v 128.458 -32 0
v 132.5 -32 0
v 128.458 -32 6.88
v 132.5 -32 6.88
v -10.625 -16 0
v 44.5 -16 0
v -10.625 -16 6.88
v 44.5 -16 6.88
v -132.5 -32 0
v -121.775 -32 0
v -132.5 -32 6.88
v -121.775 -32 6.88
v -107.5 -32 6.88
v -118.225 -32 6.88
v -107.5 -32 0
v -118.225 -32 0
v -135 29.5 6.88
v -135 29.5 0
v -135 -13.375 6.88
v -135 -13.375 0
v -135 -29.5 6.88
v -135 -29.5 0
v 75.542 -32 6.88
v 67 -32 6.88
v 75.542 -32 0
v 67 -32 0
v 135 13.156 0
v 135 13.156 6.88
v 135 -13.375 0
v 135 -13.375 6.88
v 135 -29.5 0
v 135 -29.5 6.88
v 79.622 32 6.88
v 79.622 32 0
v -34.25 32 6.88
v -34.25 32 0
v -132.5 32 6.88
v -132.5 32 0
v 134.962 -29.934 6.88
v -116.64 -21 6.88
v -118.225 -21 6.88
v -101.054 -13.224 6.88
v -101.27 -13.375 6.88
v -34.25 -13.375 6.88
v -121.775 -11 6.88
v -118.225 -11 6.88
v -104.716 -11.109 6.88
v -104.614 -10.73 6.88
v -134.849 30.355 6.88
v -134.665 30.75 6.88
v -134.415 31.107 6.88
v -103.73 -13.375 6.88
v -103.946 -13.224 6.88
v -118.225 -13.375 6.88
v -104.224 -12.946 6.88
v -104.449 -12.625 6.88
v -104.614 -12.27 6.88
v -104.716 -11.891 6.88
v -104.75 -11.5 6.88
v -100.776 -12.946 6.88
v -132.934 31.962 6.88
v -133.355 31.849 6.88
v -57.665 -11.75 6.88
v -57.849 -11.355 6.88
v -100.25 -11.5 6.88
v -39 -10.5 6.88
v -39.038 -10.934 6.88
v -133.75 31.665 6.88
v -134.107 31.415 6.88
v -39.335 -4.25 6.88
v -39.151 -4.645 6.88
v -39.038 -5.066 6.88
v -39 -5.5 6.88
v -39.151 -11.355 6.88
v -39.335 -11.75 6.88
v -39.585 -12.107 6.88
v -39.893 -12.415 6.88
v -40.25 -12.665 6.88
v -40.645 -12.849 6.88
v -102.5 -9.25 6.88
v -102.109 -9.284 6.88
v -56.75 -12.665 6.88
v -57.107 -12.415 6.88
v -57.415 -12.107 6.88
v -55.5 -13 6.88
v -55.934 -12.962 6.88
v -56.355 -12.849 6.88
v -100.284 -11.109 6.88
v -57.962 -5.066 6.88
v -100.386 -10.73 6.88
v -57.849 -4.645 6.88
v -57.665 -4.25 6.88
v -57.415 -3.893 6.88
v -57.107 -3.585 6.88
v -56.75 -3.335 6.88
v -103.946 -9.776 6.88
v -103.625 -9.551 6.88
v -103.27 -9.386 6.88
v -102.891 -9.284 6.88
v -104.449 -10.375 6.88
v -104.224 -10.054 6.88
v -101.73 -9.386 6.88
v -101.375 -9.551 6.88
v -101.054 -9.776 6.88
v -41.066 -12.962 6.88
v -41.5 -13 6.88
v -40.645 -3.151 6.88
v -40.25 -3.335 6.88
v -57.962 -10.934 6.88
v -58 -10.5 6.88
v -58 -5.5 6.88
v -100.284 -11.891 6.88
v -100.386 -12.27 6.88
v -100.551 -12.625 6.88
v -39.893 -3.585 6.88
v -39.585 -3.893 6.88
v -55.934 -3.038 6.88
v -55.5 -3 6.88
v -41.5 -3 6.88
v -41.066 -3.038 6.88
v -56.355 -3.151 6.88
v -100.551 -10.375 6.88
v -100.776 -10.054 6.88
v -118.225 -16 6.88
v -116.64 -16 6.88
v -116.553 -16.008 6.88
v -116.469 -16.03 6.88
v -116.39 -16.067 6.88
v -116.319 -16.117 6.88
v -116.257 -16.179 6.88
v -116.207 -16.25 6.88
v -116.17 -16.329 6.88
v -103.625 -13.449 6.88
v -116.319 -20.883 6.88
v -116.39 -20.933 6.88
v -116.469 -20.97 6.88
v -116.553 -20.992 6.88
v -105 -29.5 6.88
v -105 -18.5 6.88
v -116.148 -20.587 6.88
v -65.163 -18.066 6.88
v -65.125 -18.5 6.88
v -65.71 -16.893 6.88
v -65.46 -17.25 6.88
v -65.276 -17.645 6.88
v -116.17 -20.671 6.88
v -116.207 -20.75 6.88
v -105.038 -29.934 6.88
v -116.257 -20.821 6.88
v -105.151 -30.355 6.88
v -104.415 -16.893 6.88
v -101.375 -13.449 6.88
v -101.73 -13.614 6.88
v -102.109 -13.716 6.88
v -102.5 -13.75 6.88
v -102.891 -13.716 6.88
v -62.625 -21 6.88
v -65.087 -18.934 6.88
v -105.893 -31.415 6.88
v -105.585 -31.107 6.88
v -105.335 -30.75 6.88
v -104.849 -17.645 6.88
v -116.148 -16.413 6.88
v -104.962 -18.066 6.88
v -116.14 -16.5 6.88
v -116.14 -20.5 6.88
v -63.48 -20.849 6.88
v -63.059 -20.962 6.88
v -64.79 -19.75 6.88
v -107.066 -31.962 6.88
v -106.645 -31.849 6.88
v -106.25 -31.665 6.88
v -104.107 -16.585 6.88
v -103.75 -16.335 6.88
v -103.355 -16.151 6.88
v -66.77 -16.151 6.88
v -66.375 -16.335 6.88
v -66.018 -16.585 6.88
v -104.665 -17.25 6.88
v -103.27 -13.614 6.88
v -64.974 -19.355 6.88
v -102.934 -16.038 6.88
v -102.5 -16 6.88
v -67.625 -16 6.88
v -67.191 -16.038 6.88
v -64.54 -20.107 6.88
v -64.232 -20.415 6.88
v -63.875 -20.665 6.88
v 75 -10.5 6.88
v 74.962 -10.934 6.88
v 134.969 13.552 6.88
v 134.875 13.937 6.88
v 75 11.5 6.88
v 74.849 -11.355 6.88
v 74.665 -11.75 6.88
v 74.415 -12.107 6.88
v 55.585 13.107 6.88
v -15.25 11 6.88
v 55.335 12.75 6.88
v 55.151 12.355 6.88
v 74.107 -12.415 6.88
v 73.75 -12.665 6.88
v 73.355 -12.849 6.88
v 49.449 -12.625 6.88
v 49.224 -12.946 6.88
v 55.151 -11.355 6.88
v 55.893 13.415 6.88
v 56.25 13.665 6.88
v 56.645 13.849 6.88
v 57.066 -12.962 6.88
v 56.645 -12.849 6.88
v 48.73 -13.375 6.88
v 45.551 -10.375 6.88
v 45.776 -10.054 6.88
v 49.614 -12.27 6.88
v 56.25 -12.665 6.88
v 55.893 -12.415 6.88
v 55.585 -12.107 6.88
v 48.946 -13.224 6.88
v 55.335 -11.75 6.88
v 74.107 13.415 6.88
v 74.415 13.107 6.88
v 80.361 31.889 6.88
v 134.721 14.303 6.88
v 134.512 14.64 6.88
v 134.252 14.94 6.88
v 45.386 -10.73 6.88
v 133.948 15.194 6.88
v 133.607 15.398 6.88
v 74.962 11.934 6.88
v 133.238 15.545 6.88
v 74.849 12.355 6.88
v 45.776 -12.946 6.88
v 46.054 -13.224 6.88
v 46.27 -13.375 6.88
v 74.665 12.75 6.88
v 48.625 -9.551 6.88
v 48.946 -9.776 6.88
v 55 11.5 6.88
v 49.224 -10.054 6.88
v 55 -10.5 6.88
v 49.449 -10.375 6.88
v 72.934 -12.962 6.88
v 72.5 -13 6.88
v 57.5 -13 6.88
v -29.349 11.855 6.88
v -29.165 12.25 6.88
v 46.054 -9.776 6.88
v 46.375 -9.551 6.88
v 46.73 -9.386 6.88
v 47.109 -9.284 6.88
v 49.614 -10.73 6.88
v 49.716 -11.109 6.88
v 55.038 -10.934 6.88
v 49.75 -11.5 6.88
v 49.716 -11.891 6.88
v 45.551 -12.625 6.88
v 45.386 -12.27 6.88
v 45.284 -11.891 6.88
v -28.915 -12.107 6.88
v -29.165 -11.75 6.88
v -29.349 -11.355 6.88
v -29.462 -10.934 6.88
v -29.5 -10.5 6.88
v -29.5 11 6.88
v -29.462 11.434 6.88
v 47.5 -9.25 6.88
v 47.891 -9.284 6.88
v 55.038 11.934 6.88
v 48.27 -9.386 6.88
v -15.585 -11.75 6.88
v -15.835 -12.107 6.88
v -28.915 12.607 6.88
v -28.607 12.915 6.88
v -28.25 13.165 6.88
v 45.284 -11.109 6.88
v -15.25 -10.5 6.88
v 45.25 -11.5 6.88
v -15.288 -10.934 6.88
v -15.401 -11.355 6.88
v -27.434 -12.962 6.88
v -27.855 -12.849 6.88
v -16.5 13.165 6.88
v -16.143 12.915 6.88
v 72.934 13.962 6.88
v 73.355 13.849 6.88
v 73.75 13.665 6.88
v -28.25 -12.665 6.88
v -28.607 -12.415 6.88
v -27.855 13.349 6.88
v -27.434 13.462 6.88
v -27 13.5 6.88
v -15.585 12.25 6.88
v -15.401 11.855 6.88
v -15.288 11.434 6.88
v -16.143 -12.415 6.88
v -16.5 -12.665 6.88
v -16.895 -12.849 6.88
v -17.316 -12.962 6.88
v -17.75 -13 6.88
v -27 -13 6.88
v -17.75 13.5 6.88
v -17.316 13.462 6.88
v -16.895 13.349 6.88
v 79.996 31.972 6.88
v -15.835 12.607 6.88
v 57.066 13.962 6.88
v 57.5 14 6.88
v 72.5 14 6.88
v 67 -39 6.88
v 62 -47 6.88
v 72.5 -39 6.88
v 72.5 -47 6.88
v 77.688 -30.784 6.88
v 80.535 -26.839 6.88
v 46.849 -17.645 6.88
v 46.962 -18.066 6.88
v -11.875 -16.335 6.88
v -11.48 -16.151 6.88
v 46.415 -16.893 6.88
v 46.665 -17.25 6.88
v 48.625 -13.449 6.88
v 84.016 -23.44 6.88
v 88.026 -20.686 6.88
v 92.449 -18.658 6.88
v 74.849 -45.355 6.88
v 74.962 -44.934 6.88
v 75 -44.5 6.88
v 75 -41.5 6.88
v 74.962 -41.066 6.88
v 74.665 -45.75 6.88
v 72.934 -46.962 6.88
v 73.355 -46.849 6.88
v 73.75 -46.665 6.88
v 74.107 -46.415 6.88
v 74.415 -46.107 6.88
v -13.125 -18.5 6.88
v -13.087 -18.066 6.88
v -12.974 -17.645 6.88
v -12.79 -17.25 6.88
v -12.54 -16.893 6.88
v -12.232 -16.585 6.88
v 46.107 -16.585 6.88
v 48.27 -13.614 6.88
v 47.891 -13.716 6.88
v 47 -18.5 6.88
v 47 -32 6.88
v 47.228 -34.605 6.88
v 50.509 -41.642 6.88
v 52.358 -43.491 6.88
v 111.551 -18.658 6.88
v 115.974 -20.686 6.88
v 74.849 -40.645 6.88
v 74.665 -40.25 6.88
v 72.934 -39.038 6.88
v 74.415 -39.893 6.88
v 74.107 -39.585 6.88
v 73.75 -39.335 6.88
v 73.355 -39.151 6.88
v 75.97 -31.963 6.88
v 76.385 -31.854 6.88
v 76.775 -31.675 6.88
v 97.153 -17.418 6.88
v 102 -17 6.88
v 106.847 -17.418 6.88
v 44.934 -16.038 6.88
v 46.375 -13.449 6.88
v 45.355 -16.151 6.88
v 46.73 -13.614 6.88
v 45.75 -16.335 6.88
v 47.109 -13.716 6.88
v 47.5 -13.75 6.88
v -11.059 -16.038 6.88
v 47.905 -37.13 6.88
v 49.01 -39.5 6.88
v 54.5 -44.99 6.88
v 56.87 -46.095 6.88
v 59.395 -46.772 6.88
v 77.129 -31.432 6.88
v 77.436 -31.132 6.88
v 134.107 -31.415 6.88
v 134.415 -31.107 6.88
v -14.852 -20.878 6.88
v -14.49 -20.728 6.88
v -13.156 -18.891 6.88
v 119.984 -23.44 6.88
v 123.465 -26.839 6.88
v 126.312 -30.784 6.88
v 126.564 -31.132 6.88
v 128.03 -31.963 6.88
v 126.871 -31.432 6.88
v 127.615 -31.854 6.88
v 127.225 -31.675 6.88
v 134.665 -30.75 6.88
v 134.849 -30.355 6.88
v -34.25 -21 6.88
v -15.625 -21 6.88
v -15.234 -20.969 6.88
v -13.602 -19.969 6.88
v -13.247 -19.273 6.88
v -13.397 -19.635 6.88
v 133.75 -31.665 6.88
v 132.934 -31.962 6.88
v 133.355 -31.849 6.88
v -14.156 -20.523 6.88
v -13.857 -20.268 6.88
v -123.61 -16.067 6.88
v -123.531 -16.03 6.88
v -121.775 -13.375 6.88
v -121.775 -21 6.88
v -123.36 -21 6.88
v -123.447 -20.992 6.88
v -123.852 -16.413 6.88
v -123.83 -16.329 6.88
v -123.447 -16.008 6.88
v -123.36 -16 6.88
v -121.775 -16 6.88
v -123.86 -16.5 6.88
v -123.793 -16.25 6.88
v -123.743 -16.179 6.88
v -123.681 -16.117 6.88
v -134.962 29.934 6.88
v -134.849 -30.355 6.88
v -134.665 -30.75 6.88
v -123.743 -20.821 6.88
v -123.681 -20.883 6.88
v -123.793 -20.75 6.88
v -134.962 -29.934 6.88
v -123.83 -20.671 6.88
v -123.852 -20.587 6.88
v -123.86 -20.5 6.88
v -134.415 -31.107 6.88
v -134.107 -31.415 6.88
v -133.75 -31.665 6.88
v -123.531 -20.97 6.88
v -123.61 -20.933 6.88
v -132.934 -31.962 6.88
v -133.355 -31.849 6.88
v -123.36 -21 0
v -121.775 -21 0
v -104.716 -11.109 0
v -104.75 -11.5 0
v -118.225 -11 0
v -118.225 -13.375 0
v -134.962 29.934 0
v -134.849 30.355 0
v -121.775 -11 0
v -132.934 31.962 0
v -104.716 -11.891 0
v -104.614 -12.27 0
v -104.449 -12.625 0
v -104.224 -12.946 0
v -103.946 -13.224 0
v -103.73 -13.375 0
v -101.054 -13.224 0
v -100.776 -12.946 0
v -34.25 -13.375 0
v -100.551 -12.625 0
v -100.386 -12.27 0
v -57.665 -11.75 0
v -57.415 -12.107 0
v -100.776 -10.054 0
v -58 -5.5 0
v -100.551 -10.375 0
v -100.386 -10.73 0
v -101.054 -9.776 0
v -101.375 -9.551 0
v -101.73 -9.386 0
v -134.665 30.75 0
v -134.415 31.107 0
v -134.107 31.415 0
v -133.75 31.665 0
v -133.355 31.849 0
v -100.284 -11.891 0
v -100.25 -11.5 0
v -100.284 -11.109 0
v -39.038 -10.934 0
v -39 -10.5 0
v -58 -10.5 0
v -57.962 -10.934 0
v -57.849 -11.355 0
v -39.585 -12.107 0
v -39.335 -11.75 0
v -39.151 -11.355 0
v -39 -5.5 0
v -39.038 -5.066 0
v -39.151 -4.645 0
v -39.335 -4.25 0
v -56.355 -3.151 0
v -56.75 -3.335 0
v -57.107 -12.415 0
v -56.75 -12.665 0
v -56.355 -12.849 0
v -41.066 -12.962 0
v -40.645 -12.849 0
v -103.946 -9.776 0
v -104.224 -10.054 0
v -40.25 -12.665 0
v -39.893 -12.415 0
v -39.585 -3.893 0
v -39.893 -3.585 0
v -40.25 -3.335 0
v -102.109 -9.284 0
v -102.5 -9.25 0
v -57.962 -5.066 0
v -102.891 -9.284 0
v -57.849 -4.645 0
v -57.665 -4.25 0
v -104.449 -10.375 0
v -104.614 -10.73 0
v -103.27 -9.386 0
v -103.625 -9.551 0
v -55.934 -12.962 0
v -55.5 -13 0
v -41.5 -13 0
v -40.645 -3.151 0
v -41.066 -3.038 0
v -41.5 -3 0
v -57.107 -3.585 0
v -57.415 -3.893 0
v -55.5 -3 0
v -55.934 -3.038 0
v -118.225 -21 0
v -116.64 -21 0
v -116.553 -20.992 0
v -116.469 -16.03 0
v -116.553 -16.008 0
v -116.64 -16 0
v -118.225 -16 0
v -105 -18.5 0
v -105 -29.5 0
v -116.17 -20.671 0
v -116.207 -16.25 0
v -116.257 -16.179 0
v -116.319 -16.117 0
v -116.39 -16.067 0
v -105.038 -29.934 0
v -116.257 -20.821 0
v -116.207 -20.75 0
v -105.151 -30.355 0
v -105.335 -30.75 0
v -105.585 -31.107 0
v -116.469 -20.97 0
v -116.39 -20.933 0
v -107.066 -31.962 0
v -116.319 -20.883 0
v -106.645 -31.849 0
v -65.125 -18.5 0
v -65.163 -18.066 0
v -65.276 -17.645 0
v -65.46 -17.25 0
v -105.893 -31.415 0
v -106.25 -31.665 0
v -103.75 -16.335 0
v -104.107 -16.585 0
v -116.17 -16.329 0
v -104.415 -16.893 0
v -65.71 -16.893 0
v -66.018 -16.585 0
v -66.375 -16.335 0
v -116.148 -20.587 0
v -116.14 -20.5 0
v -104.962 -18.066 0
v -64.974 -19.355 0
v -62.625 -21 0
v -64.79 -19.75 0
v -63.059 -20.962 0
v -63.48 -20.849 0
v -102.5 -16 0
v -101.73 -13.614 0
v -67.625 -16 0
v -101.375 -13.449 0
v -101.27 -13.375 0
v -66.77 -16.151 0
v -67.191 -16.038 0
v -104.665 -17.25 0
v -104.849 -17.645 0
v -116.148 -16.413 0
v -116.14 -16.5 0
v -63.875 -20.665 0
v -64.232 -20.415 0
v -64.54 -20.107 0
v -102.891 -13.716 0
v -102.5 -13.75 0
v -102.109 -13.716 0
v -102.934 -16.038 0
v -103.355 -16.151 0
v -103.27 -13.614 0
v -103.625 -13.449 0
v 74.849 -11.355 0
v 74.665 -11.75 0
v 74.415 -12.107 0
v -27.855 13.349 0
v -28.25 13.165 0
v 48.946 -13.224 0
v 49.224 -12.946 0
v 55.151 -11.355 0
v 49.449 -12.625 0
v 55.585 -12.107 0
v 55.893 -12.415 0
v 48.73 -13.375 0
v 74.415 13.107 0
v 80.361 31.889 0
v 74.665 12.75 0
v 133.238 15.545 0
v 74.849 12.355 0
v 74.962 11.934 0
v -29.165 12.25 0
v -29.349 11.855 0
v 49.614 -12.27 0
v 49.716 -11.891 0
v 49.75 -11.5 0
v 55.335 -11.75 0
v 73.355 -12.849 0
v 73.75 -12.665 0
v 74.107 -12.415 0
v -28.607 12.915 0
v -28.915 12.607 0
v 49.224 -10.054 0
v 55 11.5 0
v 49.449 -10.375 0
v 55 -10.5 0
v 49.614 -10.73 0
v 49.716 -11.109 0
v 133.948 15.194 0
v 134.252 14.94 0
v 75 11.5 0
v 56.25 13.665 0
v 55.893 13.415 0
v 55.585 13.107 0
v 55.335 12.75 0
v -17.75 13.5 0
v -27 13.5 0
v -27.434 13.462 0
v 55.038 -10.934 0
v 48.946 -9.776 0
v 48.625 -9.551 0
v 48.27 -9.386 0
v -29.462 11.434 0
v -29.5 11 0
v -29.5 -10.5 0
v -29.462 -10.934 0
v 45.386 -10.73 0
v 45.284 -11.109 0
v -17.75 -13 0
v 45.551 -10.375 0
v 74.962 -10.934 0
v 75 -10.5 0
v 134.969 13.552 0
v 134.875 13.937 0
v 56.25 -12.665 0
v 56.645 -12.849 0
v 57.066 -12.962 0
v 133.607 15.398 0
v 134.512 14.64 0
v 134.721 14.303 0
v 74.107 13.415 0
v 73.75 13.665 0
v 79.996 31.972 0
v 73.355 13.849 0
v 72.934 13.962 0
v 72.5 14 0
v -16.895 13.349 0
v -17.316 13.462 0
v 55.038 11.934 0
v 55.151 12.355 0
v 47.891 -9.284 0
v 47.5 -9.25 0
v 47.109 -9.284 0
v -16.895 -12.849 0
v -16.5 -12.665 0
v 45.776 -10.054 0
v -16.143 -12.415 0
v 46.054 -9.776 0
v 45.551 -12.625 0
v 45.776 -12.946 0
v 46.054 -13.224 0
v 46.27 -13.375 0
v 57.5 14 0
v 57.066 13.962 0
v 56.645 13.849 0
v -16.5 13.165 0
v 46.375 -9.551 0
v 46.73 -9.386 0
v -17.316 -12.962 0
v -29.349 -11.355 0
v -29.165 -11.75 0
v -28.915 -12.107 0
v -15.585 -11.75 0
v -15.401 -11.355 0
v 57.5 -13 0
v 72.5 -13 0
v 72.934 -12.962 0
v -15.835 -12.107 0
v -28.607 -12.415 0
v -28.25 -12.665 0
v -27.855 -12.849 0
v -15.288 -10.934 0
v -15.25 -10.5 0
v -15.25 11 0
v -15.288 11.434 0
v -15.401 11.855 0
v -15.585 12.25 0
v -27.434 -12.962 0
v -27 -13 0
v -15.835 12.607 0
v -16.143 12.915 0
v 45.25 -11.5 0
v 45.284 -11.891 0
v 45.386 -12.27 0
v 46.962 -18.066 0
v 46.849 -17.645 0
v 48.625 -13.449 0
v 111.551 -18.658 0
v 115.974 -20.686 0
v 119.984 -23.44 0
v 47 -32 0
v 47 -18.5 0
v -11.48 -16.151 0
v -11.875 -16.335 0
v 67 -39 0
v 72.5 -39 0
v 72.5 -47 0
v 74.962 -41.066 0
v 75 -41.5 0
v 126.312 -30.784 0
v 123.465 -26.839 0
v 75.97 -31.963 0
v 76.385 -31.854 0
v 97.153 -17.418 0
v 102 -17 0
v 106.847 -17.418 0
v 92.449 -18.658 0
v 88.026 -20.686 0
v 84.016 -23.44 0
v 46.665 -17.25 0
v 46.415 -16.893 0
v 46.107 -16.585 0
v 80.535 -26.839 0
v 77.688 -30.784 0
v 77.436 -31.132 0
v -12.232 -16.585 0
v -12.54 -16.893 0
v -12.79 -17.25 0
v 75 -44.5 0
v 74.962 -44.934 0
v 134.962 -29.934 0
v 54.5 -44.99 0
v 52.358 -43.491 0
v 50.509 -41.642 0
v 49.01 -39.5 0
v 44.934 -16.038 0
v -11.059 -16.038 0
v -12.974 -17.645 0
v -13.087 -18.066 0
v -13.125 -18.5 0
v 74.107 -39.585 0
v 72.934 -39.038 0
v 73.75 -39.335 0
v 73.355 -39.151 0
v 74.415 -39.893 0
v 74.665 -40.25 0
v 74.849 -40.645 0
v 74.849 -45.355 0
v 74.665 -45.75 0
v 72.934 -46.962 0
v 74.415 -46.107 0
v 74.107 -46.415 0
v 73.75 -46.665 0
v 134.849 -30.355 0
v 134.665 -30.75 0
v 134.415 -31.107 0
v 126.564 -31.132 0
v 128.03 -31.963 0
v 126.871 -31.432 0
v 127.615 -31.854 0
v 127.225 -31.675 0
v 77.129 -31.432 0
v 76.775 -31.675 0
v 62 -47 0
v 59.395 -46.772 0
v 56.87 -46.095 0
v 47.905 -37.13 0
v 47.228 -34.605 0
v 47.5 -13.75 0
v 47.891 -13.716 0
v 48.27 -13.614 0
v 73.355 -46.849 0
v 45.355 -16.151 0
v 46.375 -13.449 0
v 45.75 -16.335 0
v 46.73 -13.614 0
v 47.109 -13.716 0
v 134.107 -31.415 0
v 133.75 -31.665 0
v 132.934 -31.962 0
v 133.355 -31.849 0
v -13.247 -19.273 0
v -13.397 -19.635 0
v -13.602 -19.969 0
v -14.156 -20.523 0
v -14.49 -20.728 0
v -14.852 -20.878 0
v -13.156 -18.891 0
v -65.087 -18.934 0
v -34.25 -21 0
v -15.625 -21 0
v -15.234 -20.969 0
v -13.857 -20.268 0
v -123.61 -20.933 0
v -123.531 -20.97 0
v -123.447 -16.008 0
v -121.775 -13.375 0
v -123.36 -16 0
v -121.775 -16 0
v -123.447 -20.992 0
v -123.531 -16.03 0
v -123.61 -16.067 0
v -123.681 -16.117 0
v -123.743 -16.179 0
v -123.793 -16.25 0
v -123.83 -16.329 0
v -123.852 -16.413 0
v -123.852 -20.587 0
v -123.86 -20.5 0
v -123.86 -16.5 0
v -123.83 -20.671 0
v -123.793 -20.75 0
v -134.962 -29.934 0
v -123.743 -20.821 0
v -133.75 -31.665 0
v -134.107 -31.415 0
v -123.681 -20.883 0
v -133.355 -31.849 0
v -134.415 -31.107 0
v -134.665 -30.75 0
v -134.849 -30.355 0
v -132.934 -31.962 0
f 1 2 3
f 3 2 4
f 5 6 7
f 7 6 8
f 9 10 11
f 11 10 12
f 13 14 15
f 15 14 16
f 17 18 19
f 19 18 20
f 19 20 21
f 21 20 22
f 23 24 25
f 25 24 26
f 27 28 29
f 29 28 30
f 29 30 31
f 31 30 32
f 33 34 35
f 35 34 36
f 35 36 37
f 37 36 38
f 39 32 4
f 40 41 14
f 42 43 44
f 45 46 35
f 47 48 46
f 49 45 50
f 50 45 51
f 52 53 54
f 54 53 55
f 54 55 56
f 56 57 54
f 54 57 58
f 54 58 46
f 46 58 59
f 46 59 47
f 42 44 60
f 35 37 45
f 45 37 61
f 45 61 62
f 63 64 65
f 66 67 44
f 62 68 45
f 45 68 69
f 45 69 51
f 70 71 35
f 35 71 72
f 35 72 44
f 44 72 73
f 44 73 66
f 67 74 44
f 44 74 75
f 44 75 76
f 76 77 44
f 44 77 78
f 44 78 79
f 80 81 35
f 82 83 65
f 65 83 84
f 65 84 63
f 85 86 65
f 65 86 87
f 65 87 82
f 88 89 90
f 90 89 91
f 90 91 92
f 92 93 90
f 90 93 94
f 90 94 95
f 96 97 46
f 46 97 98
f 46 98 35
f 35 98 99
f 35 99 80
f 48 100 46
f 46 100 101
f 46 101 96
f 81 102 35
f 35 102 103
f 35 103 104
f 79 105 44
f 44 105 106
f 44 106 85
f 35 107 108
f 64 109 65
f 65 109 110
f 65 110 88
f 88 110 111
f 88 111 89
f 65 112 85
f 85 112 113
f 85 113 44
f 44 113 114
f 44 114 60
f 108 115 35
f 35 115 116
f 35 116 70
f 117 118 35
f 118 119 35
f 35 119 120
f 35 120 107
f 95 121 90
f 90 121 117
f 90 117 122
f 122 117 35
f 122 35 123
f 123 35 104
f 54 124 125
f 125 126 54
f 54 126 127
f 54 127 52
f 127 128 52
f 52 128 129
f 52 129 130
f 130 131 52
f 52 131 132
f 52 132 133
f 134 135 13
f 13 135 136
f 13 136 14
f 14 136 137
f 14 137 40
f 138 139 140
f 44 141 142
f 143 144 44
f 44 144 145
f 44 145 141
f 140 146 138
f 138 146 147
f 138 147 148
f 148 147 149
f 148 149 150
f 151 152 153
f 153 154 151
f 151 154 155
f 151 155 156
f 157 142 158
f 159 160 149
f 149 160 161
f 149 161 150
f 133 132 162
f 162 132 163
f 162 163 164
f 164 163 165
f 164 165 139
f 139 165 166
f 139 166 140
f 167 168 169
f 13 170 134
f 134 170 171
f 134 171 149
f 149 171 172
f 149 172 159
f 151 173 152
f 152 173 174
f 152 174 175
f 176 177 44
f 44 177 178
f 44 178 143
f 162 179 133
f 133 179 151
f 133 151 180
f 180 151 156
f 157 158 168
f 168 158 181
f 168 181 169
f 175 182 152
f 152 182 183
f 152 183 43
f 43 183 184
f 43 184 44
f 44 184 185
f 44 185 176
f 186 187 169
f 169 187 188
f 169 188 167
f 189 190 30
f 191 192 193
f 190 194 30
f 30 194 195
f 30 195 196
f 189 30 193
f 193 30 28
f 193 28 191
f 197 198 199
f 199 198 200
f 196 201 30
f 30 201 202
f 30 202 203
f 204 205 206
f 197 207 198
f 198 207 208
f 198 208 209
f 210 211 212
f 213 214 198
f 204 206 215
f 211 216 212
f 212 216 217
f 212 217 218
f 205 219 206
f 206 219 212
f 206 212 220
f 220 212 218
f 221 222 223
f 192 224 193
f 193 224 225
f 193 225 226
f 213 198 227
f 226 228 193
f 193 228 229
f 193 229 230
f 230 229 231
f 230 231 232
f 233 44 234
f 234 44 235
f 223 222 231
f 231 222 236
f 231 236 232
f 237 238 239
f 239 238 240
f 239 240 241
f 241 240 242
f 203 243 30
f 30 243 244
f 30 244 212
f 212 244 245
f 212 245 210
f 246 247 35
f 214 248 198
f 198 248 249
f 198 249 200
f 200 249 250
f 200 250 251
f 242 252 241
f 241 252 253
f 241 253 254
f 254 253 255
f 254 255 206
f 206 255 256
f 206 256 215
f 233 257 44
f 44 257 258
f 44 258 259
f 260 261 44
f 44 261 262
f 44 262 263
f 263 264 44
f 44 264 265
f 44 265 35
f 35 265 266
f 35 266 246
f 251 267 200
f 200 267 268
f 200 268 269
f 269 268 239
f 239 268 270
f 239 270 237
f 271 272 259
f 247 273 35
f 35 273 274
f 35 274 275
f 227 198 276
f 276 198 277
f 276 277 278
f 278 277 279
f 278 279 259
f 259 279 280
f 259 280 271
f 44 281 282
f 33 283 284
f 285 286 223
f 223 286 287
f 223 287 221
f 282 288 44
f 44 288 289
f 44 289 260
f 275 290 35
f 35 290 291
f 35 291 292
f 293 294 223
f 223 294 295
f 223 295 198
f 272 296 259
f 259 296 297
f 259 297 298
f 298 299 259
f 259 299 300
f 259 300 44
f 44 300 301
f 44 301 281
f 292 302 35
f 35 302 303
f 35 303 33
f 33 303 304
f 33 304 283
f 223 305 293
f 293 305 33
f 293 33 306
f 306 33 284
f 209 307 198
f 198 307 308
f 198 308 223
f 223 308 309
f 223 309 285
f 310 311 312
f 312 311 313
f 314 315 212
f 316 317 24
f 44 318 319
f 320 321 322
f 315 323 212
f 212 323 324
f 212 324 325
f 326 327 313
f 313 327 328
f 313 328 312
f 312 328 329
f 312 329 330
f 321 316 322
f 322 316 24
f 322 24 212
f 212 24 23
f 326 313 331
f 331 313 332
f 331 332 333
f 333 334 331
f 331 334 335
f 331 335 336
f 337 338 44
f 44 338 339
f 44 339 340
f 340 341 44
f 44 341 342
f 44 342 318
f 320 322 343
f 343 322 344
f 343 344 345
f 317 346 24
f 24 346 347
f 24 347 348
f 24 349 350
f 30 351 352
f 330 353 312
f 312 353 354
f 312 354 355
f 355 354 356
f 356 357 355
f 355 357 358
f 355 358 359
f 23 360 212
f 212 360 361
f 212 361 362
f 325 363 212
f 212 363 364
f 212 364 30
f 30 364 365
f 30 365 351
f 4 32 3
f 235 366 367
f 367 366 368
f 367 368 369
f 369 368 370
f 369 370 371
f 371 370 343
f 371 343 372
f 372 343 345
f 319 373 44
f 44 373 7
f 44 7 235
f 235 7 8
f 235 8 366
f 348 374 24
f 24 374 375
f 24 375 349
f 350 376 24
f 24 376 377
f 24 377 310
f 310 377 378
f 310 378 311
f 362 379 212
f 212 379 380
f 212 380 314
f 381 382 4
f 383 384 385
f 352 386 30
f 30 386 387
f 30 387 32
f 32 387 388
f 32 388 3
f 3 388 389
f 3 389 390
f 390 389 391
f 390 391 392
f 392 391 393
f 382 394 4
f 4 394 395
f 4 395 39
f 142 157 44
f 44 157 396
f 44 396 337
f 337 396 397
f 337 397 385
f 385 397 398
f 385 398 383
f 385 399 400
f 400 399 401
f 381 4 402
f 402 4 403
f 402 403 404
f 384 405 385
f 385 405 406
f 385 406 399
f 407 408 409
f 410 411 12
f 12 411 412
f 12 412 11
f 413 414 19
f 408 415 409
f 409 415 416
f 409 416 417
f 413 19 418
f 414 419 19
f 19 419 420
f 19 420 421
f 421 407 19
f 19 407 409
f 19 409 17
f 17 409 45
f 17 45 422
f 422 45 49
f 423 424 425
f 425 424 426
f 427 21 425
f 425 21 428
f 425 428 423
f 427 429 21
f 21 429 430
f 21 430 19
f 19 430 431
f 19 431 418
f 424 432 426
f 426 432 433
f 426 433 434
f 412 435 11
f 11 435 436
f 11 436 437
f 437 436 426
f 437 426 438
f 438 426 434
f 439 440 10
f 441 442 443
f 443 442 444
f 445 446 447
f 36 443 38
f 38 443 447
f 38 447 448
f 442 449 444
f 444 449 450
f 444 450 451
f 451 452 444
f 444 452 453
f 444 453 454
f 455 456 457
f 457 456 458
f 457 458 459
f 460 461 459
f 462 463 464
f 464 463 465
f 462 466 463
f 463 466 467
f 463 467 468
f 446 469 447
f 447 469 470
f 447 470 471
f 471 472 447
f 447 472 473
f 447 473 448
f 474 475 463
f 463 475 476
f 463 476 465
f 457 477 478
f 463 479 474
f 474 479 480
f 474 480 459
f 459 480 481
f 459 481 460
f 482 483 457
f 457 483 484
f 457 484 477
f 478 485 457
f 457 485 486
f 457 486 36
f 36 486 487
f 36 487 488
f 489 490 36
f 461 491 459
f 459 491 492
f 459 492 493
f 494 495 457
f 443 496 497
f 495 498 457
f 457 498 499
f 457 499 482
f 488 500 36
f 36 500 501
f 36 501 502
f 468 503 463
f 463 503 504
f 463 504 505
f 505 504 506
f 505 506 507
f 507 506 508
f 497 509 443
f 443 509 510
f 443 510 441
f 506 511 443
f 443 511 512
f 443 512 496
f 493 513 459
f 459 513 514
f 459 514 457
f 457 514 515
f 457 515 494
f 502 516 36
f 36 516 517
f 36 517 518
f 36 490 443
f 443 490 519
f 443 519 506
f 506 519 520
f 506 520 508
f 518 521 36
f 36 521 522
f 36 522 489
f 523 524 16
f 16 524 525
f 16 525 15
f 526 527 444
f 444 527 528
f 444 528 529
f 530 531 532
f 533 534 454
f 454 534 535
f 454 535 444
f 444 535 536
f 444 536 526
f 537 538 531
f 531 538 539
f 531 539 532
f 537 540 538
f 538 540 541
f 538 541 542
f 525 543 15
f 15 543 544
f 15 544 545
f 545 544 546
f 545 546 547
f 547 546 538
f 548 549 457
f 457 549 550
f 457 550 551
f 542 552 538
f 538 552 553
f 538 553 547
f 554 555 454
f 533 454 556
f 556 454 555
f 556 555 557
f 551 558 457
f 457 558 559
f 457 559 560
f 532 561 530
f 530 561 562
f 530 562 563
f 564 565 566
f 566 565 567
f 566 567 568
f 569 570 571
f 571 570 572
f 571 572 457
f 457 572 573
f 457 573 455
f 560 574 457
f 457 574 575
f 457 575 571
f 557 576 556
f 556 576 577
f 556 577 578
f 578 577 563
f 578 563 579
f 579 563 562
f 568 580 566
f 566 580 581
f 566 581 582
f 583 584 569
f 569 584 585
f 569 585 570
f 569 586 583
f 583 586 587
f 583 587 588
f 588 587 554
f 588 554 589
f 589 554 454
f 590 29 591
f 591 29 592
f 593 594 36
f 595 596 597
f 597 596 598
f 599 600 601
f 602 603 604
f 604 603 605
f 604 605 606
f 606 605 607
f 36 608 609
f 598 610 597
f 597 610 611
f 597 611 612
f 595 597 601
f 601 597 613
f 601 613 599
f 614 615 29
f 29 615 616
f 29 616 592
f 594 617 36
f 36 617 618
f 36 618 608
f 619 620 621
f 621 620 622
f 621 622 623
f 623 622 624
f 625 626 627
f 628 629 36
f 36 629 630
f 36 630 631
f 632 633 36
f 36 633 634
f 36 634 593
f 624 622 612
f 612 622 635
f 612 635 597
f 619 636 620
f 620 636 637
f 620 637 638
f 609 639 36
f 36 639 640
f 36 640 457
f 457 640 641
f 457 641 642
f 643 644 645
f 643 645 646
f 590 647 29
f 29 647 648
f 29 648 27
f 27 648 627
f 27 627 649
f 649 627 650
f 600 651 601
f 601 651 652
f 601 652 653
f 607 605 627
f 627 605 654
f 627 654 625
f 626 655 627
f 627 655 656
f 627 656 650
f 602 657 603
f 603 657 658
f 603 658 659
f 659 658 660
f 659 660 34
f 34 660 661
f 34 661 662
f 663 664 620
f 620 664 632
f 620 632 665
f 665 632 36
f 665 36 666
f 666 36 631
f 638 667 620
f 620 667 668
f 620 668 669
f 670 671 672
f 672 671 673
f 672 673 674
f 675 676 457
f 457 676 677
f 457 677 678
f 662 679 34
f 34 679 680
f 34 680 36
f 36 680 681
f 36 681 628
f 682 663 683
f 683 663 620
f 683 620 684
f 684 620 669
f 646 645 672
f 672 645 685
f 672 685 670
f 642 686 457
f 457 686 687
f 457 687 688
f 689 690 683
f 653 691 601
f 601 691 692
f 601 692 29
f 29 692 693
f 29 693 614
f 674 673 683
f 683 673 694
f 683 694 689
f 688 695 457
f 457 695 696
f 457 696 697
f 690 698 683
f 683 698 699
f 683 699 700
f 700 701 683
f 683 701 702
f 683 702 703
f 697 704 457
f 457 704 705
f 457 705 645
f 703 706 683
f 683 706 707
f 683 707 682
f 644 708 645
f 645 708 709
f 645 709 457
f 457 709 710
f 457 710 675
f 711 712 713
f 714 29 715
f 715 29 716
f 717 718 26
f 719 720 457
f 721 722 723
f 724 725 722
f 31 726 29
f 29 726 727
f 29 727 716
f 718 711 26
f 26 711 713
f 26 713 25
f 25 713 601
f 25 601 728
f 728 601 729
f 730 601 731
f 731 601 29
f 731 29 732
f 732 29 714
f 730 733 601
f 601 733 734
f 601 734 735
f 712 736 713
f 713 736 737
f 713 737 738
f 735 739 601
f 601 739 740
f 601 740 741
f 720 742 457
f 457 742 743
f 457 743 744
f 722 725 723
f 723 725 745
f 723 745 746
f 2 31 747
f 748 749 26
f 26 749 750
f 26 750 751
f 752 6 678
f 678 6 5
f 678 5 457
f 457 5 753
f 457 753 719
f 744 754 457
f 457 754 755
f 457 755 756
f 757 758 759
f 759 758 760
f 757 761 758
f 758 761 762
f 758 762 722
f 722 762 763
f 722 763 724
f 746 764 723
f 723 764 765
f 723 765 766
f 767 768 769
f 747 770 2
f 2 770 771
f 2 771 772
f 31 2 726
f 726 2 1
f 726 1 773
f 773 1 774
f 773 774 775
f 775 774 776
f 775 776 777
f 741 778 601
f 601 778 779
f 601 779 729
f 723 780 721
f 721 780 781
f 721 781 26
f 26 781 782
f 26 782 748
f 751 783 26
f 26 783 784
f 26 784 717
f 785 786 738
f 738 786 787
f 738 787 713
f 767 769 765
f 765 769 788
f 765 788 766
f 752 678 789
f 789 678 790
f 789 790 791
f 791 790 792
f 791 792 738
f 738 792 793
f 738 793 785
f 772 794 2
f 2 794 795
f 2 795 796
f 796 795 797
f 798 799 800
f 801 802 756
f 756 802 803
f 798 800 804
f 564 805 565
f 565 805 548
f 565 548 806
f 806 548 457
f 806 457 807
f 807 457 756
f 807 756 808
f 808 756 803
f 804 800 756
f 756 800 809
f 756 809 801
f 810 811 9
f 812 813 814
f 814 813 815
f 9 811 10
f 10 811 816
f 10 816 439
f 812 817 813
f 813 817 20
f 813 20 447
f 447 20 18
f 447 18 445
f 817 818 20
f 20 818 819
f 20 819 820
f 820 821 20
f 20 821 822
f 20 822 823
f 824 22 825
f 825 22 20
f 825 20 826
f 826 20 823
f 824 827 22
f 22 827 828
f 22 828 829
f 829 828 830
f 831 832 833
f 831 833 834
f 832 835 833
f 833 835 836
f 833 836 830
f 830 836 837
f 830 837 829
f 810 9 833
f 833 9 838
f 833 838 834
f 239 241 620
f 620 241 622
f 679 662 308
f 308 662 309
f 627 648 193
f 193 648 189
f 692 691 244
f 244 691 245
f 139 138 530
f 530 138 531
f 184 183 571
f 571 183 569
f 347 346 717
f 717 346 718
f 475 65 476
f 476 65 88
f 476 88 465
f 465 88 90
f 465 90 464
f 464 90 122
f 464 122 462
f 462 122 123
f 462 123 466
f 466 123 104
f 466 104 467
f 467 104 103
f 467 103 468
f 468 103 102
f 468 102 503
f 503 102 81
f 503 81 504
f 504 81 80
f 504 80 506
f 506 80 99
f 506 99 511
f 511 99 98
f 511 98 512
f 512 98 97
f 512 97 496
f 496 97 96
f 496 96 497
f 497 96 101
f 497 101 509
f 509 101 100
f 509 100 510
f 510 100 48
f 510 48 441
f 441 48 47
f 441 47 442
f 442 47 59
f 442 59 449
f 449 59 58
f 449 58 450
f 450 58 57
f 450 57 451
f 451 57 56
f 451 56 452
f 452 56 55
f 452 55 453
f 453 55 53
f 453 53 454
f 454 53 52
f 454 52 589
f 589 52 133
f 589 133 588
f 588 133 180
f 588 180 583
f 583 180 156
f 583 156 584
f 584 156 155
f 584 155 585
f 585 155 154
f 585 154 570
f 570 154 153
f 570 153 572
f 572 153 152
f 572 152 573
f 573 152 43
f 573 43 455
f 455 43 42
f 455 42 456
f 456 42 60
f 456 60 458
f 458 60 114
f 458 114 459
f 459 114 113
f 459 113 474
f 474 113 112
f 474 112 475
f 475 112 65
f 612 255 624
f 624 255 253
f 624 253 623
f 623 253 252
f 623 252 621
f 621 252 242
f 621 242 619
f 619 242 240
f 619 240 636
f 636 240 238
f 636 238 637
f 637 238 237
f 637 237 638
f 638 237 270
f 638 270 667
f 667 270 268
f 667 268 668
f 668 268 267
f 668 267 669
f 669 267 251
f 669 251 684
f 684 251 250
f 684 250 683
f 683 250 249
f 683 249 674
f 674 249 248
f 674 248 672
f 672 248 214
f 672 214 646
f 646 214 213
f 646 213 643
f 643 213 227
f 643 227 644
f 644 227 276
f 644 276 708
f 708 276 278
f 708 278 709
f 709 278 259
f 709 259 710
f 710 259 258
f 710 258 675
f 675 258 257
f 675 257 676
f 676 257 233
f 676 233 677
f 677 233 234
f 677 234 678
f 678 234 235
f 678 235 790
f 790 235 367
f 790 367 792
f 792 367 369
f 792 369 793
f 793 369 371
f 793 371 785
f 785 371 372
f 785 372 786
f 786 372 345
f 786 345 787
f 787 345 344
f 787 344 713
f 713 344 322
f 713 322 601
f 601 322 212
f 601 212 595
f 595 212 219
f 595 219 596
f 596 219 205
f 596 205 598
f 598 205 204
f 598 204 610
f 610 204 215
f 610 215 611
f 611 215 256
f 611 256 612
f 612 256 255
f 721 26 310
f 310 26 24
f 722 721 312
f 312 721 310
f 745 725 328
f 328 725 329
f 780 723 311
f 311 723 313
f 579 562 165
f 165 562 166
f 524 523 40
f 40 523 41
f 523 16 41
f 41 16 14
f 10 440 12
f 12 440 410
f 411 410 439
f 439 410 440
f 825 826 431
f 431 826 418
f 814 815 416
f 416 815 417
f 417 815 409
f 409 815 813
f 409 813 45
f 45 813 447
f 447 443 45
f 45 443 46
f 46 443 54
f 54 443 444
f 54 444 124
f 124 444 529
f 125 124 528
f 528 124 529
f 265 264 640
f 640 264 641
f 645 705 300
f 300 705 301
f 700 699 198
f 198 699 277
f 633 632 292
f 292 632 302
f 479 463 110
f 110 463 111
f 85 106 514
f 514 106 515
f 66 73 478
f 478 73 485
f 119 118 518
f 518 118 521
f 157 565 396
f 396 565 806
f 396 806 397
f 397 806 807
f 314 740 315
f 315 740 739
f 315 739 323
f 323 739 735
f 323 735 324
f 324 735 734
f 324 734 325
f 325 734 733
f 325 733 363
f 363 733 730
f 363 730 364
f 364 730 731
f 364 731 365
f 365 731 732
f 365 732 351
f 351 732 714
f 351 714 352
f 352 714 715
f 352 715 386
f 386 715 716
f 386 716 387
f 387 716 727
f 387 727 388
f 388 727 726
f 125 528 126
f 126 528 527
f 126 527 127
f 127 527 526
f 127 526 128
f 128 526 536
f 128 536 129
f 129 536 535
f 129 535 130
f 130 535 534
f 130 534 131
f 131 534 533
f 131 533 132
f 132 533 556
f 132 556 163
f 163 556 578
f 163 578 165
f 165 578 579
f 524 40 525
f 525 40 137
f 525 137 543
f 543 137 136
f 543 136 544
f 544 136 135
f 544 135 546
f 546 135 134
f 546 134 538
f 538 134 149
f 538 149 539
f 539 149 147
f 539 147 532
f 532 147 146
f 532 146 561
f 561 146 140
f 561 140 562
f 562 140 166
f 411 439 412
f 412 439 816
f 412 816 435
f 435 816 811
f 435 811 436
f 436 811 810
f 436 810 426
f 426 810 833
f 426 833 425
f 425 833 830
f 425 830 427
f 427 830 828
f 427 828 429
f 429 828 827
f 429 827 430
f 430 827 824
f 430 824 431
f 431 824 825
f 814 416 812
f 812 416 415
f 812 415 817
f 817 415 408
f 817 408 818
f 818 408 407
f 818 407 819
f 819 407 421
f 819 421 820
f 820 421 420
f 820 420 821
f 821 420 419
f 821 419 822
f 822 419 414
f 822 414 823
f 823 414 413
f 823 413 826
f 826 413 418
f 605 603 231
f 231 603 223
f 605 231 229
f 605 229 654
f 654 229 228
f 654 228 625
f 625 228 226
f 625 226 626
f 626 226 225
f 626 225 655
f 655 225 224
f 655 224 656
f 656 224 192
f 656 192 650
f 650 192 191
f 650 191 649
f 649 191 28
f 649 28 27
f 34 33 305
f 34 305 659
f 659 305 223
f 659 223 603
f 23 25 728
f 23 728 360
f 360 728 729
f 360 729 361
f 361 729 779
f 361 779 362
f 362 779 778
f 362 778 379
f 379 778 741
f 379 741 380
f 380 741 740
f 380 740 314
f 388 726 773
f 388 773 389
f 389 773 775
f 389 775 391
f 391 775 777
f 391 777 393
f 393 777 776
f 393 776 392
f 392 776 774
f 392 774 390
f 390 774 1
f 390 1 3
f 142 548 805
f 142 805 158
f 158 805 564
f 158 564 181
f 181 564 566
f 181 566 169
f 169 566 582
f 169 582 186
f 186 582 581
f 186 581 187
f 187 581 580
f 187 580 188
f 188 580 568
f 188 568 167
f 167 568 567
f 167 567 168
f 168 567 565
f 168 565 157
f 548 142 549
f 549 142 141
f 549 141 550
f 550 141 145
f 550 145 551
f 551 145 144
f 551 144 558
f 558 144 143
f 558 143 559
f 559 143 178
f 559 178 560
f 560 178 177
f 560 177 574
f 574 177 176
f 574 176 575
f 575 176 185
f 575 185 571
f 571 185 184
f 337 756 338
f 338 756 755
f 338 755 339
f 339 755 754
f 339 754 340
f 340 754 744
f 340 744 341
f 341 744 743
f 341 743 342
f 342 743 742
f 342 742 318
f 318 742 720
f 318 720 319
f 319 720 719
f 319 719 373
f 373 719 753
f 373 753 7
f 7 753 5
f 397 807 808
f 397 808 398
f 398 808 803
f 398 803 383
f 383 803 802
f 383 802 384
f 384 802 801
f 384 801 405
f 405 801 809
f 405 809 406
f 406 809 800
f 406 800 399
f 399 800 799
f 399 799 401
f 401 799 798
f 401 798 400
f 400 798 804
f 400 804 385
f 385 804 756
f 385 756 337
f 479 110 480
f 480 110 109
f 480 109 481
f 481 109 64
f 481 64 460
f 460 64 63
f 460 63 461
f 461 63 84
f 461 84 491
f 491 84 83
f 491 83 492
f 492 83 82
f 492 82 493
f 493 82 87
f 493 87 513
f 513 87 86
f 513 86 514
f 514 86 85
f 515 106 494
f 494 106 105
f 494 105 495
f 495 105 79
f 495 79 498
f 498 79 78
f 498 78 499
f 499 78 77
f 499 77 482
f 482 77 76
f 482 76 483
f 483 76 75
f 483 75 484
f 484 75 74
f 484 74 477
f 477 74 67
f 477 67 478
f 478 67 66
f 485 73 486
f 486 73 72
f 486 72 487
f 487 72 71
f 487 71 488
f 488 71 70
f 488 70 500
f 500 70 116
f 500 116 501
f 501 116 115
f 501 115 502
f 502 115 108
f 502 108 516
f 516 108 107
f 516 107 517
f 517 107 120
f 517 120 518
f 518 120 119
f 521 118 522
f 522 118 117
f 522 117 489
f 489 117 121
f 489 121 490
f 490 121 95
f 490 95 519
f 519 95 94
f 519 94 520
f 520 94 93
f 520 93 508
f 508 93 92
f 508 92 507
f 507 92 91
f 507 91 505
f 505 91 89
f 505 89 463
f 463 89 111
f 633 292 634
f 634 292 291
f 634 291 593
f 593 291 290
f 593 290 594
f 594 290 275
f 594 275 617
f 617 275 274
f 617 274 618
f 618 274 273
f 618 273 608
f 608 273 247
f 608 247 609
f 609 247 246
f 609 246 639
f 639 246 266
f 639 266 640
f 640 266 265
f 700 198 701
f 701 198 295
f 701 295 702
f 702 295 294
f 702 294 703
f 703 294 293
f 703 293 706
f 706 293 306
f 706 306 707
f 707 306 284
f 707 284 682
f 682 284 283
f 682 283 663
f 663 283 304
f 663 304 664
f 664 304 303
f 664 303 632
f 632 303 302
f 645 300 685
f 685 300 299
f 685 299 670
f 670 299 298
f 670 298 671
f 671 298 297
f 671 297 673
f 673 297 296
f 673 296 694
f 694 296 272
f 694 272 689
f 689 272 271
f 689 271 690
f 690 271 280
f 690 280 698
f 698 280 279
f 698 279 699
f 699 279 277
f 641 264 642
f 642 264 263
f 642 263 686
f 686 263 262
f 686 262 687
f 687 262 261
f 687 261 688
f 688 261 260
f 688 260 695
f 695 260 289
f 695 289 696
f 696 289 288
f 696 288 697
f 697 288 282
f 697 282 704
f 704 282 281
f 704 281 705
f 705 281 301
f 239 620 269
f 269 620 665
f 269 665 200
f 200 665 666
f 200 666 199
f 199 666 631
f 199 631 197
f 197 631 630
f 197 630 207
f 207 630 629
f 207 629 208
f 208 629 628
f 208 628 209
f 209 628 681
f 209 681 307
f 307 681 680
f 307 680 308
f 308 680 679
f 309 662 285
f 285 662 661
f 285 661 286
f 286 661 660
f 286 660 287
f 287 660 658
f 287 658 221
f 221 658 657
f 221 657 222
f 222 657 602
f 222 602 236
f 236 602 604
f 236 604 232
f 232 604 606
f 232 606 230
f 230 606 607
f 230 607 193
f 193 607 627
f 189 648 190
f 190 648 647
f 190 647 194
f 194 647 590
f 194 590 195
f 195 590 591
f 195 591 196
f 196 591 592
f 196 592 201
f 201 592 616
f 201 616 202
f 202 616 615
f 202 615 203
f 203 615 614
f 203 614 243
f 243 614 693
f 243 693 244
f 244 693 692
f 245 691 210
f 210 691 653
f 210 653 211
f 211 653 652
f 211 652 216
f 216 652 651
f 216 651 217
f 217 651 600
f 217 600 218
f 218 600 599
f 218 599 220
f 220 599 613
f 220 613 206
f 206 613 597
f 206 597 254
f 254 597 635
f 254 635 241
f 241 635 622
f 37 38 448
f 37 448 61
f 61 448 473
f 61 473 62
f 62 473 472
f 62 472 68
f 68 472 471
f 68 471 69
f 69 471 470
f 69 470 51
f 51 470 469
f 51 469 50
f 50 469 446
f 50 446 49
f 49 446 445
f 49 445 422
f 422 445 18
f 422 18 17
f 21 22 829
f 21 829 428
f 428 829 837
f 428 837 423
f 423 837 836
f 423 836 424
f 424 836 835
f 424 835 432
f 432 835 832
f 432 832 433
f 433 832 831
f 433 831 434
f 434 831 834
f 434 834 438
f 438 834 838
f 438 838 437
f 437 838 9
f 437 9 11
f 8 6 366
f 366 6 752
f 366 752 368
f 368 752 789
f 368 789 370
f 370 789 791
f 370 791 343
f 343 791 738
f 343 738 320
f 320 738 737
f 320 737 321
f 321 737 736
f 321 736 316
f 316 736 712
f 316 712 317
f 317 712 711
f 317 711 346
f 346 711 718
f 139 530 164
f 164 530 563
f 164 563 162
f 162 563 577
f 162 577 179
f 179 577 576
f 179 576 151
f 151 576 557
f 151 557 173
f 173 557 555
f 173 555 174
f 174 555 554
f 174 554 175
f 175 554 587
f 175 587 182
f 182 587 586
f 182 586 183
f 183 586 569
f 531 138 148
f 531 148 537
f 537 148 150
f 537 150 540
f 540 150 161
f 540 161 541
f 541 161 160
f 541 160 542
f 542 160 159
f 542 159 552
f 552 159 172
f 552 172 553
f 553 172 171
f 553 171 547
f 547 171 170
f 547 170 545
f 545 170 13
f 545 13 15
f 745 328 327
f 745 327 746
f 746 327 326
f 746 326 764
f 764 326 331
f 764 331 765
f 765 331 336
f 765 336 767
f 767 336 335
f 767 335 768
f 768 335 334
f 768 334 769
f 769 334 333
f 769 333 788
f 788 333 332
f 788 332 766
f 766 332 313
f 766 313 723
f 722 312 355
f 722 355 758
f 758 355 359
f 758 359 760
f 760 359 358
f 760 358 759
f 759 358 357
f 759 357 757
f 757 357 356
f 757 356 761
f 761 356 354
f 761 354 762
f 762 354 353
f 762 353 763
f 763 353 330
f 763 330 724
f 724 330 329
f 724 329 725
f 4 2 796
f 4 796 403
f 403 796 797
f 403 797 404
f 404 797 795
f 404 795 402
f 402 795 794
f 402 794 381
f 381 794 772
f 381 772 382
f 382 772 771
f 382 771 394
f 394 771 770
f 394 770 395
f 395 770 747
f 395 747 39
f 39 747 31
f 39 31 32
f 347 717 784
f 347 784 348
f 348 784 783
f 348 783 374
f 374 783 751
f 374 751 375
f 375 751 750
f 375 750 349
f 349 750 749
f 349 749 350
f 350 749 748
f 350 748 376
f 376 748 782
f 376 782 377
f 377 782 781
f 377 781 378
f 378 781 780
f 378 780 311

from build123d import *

# Parameters (mm, degrees)
SKETCH1_W           = 270
SKETCH1_H           = 64
BOSS_EXTRUDE1_DEPTH = 6.88
SKETCH2_W           = 20
SKETCH2_H           = 27
SKETCH2_W_2         = 152
SKETCH2_H_2         = 16
CUT_EXTRUDE1_DEPTH  = 139.911246485
SKETCH3_R           = 2.25
CUT_EXTRUDE2_DEPTH  = 139.911246485
BOSS_EXTRUDE2_DEPTH = 6.88
SKETCH5_W           = 2.085
SKETCH5_H           = 5
SKETCH5_W_2         = 3.55
SKETCH5_H_2         = 11
CUT_EXTRUDE3_DEPTH  = 144.113012686
SKETCH7_W           = 14.25
SKETCH7_H           = 26.5
SKETCH7_W_2         = 19
SKETCH7_H_2         = 10
CUT_EXTRUDE4_DEPTH  = 144.113012686
SKETCH8_W           = 52
SKETCH8_H           = 8
BOSS_EXTRUDE4_DEPTH = 6.88
CUT_EXTRUDE5_DEPTH  = 144.113012686
FILLET2_R           = 0.5
CUT_EXTRUDE6_DEPTH  = 144.113012686
FILLET1_R           = 2.5
FILLET3_R           = 15


with BuildPart() as part:
    # Sketch1 → Boss-Extrude1 (new body)
    with BuildSketch(Plane.XY):
        Rectangle(SKETCH1_W, SKETCH1_H)
    extrude(amount=BOSS_EXTRUDE1_DEPTH)

    # Sketch2 → Cut-Extrude1 (cut, through all)
    with BuildSketch(Plane.XY.offset(6.88)):
        with Locations((65, 0.5)):
            Rectangle(SKETCH2_W, SKETCH2_H)
        with Locations((-29, -24)):
            Rectangle(SKETCH2_W_2, SKETCH2_H_2)
    extrude(amount=-CUT_EXTRUDE1_DEPTH, mode=Mode.SUBTRACT)

    # Sketch3 → Cut-Extrude2 (cut, through all)
    with BuildSketch(Plane.XY.offset(6.88)):
        with Locations((-102.5, -11.5)):
            Circle(SKETCH3_R)
        with Locations((47.5, -11.5)):
            Circle(SKETCH3_R)
    extrude(amount=-CUT_EXTRUDE2_DEPTH, mode=Mode.SUBTRACT)

    # Sketch4 → Boss-Extrude2 (add)
    with BuildSketch(Plane.XY.offset(6.88)):
        Polygon((47, -32), (67, -32), (67, -39), (75, -39), (75, -47), (47, -47), align=None)
    extrude(amount=-BOSS_EXTRUDE2_DEPTH)

    # Sketch5 → Cut-Extrude3 (cut, through all)
    with BuildSketch(Plane.XY.offset(6.88)):
        with Locations((-117.1825, -18.5)):
            Rectangle(SKETCH5_W, SKETCH5_H)
        with Locations((-120, -18.5)):
            Rectangle(SKETCH5_W_2, SKETCH5_H)
        with Locations((-120, -13.5)):
            Rectangle(SKETCH5_W_2, SKETCH5_H)
        with Locations((-122.8175, -18.5)):
            Rectangle(SKETCH5_W, SKETCH5_H)
        with Locations((-120, -26.5)):
            Rectangle(SKETCH5_W_2, SKETCH5_H_2)
    extrude(amount=-CUT_EXTRUDE3_DEPTH, mode=Mode.SUBTRACT)

    # Sketch7 → Cut-Extrude4 (cut, through all)
    with BuildSketch(Plane(origin=(0, 0, 0), x_dir=(-1, 0, 0), z_dir=(0, 0, -1))):
        with Locations((22.375, 0.25)):
            Rectangle(SKETCH7_W, SKETCH7_H)
        with Locations((48.5, -8)):
            Rectangle(SKETCH7_W_2, SKETCH7_H_2)
    extrude(amount=-CUT_EXTRUDE4_DEPTH, mode=Mode.SUBTRACT)

    # Sketch8 → Boss-Extrude4 (add)
    with BuildSketch(Plane(origin=(0, 0, 0), x_dir=(-1, 0, 0), z_dir=(0, 0, -1))):
        with Locations((39.125, -17)):
            Rectangle(SKETCH8_W, SKETCH8_H)
    extrude(amount=-BOSS_EXTRUDE4_DEPTH)

    # Sketch9 → Cut-Extrude5 (cut, through all)
    with BuildSketch(Plane(origin=(0, 0, 0), x_dir=(-1, 0, 0), z_dir=(0, 0, -1))):
        with BuildLine():
            Line((-77, -32), (-127, -32))
            ThreePointArc((-127, -32), (-102, -17), (-77, -32))
        make_face()
    extrude(amount=-CUT_EXTRUDE5_DEPTH, mode=Mode.SUBTRACT)

    # Fillet2
    fillet2_edges = [part.edges().sort_by_distance(p)[0] for p in [
        (-116.14, -16, 3.44),
        (-116.14, -21, 3.44),
        (-123.86, -21, 3.44),
        (-123.86, -16, 3.44),
    ]]
    fillet(fillet2_edges, radius=FILLET2_R)

    # Sketch10 → Cut-Extrude6 (cut, through all)
    with BuildSketch(Plane.XY.offset(6.88)):
        Polygon((80, 32), (135, 15), (135, 32), align=None)
    extrude(amount=-CUT_EXTRUDE6_DEPTH, mode=Mode.SUBTRACT)

    # Fillet1
    fillet1_edges = [part.edges().sort_by_distance(p)[0] for p in [
        (55, 14, 3.44),
        (75, 14, 3.44),
        (75, -13, 3.44),
        (55, -13, 3.44),
        (-135, 32, 3.44),
        (-135, -32, 3.44),
        (47, -16, 3.44),
        (-105, -16, 3.44),
        (-105, -32, 3.44),
        (75, -47, 3.44),
        (75, -39, 3.44),
        (135, -32, 3.44),
        (-58, -13, 3.44),
        (-39, -13, 3.44),
        (-39, -3, 3.44),
        (-58, -3, 3.44),
        (-29.5, 13.5, 3.44),
        (-15.25, 13.5, 3.44),
        (-15.25, -13, 3.44),
        (-29.5, -13, 3.44),
        (-65.125, -16, 3.44),
        (-65.125, -21, 3.44),
        (-13.125, -21, 3.44),
        (-13.125, -16, 3.44),
        (127, -32, 3.44),
        (77, -32, 3.44),
        (135, 15, 3.44),
        (80, 32, 3.44),
    ]]
    fillet(fillet1_edges, radius=FILLET1_R - 0.0001)  # a hair under: the kernel refuses the full size

    # Fillet3
    fillet3_edges = [part.edges().sort_by_distance(p)[0] for p in [
        (47, -47, 3.44),
    ]]
    fillet(fillet3_edges, radius=FILLET3_R)


solid = part.part
